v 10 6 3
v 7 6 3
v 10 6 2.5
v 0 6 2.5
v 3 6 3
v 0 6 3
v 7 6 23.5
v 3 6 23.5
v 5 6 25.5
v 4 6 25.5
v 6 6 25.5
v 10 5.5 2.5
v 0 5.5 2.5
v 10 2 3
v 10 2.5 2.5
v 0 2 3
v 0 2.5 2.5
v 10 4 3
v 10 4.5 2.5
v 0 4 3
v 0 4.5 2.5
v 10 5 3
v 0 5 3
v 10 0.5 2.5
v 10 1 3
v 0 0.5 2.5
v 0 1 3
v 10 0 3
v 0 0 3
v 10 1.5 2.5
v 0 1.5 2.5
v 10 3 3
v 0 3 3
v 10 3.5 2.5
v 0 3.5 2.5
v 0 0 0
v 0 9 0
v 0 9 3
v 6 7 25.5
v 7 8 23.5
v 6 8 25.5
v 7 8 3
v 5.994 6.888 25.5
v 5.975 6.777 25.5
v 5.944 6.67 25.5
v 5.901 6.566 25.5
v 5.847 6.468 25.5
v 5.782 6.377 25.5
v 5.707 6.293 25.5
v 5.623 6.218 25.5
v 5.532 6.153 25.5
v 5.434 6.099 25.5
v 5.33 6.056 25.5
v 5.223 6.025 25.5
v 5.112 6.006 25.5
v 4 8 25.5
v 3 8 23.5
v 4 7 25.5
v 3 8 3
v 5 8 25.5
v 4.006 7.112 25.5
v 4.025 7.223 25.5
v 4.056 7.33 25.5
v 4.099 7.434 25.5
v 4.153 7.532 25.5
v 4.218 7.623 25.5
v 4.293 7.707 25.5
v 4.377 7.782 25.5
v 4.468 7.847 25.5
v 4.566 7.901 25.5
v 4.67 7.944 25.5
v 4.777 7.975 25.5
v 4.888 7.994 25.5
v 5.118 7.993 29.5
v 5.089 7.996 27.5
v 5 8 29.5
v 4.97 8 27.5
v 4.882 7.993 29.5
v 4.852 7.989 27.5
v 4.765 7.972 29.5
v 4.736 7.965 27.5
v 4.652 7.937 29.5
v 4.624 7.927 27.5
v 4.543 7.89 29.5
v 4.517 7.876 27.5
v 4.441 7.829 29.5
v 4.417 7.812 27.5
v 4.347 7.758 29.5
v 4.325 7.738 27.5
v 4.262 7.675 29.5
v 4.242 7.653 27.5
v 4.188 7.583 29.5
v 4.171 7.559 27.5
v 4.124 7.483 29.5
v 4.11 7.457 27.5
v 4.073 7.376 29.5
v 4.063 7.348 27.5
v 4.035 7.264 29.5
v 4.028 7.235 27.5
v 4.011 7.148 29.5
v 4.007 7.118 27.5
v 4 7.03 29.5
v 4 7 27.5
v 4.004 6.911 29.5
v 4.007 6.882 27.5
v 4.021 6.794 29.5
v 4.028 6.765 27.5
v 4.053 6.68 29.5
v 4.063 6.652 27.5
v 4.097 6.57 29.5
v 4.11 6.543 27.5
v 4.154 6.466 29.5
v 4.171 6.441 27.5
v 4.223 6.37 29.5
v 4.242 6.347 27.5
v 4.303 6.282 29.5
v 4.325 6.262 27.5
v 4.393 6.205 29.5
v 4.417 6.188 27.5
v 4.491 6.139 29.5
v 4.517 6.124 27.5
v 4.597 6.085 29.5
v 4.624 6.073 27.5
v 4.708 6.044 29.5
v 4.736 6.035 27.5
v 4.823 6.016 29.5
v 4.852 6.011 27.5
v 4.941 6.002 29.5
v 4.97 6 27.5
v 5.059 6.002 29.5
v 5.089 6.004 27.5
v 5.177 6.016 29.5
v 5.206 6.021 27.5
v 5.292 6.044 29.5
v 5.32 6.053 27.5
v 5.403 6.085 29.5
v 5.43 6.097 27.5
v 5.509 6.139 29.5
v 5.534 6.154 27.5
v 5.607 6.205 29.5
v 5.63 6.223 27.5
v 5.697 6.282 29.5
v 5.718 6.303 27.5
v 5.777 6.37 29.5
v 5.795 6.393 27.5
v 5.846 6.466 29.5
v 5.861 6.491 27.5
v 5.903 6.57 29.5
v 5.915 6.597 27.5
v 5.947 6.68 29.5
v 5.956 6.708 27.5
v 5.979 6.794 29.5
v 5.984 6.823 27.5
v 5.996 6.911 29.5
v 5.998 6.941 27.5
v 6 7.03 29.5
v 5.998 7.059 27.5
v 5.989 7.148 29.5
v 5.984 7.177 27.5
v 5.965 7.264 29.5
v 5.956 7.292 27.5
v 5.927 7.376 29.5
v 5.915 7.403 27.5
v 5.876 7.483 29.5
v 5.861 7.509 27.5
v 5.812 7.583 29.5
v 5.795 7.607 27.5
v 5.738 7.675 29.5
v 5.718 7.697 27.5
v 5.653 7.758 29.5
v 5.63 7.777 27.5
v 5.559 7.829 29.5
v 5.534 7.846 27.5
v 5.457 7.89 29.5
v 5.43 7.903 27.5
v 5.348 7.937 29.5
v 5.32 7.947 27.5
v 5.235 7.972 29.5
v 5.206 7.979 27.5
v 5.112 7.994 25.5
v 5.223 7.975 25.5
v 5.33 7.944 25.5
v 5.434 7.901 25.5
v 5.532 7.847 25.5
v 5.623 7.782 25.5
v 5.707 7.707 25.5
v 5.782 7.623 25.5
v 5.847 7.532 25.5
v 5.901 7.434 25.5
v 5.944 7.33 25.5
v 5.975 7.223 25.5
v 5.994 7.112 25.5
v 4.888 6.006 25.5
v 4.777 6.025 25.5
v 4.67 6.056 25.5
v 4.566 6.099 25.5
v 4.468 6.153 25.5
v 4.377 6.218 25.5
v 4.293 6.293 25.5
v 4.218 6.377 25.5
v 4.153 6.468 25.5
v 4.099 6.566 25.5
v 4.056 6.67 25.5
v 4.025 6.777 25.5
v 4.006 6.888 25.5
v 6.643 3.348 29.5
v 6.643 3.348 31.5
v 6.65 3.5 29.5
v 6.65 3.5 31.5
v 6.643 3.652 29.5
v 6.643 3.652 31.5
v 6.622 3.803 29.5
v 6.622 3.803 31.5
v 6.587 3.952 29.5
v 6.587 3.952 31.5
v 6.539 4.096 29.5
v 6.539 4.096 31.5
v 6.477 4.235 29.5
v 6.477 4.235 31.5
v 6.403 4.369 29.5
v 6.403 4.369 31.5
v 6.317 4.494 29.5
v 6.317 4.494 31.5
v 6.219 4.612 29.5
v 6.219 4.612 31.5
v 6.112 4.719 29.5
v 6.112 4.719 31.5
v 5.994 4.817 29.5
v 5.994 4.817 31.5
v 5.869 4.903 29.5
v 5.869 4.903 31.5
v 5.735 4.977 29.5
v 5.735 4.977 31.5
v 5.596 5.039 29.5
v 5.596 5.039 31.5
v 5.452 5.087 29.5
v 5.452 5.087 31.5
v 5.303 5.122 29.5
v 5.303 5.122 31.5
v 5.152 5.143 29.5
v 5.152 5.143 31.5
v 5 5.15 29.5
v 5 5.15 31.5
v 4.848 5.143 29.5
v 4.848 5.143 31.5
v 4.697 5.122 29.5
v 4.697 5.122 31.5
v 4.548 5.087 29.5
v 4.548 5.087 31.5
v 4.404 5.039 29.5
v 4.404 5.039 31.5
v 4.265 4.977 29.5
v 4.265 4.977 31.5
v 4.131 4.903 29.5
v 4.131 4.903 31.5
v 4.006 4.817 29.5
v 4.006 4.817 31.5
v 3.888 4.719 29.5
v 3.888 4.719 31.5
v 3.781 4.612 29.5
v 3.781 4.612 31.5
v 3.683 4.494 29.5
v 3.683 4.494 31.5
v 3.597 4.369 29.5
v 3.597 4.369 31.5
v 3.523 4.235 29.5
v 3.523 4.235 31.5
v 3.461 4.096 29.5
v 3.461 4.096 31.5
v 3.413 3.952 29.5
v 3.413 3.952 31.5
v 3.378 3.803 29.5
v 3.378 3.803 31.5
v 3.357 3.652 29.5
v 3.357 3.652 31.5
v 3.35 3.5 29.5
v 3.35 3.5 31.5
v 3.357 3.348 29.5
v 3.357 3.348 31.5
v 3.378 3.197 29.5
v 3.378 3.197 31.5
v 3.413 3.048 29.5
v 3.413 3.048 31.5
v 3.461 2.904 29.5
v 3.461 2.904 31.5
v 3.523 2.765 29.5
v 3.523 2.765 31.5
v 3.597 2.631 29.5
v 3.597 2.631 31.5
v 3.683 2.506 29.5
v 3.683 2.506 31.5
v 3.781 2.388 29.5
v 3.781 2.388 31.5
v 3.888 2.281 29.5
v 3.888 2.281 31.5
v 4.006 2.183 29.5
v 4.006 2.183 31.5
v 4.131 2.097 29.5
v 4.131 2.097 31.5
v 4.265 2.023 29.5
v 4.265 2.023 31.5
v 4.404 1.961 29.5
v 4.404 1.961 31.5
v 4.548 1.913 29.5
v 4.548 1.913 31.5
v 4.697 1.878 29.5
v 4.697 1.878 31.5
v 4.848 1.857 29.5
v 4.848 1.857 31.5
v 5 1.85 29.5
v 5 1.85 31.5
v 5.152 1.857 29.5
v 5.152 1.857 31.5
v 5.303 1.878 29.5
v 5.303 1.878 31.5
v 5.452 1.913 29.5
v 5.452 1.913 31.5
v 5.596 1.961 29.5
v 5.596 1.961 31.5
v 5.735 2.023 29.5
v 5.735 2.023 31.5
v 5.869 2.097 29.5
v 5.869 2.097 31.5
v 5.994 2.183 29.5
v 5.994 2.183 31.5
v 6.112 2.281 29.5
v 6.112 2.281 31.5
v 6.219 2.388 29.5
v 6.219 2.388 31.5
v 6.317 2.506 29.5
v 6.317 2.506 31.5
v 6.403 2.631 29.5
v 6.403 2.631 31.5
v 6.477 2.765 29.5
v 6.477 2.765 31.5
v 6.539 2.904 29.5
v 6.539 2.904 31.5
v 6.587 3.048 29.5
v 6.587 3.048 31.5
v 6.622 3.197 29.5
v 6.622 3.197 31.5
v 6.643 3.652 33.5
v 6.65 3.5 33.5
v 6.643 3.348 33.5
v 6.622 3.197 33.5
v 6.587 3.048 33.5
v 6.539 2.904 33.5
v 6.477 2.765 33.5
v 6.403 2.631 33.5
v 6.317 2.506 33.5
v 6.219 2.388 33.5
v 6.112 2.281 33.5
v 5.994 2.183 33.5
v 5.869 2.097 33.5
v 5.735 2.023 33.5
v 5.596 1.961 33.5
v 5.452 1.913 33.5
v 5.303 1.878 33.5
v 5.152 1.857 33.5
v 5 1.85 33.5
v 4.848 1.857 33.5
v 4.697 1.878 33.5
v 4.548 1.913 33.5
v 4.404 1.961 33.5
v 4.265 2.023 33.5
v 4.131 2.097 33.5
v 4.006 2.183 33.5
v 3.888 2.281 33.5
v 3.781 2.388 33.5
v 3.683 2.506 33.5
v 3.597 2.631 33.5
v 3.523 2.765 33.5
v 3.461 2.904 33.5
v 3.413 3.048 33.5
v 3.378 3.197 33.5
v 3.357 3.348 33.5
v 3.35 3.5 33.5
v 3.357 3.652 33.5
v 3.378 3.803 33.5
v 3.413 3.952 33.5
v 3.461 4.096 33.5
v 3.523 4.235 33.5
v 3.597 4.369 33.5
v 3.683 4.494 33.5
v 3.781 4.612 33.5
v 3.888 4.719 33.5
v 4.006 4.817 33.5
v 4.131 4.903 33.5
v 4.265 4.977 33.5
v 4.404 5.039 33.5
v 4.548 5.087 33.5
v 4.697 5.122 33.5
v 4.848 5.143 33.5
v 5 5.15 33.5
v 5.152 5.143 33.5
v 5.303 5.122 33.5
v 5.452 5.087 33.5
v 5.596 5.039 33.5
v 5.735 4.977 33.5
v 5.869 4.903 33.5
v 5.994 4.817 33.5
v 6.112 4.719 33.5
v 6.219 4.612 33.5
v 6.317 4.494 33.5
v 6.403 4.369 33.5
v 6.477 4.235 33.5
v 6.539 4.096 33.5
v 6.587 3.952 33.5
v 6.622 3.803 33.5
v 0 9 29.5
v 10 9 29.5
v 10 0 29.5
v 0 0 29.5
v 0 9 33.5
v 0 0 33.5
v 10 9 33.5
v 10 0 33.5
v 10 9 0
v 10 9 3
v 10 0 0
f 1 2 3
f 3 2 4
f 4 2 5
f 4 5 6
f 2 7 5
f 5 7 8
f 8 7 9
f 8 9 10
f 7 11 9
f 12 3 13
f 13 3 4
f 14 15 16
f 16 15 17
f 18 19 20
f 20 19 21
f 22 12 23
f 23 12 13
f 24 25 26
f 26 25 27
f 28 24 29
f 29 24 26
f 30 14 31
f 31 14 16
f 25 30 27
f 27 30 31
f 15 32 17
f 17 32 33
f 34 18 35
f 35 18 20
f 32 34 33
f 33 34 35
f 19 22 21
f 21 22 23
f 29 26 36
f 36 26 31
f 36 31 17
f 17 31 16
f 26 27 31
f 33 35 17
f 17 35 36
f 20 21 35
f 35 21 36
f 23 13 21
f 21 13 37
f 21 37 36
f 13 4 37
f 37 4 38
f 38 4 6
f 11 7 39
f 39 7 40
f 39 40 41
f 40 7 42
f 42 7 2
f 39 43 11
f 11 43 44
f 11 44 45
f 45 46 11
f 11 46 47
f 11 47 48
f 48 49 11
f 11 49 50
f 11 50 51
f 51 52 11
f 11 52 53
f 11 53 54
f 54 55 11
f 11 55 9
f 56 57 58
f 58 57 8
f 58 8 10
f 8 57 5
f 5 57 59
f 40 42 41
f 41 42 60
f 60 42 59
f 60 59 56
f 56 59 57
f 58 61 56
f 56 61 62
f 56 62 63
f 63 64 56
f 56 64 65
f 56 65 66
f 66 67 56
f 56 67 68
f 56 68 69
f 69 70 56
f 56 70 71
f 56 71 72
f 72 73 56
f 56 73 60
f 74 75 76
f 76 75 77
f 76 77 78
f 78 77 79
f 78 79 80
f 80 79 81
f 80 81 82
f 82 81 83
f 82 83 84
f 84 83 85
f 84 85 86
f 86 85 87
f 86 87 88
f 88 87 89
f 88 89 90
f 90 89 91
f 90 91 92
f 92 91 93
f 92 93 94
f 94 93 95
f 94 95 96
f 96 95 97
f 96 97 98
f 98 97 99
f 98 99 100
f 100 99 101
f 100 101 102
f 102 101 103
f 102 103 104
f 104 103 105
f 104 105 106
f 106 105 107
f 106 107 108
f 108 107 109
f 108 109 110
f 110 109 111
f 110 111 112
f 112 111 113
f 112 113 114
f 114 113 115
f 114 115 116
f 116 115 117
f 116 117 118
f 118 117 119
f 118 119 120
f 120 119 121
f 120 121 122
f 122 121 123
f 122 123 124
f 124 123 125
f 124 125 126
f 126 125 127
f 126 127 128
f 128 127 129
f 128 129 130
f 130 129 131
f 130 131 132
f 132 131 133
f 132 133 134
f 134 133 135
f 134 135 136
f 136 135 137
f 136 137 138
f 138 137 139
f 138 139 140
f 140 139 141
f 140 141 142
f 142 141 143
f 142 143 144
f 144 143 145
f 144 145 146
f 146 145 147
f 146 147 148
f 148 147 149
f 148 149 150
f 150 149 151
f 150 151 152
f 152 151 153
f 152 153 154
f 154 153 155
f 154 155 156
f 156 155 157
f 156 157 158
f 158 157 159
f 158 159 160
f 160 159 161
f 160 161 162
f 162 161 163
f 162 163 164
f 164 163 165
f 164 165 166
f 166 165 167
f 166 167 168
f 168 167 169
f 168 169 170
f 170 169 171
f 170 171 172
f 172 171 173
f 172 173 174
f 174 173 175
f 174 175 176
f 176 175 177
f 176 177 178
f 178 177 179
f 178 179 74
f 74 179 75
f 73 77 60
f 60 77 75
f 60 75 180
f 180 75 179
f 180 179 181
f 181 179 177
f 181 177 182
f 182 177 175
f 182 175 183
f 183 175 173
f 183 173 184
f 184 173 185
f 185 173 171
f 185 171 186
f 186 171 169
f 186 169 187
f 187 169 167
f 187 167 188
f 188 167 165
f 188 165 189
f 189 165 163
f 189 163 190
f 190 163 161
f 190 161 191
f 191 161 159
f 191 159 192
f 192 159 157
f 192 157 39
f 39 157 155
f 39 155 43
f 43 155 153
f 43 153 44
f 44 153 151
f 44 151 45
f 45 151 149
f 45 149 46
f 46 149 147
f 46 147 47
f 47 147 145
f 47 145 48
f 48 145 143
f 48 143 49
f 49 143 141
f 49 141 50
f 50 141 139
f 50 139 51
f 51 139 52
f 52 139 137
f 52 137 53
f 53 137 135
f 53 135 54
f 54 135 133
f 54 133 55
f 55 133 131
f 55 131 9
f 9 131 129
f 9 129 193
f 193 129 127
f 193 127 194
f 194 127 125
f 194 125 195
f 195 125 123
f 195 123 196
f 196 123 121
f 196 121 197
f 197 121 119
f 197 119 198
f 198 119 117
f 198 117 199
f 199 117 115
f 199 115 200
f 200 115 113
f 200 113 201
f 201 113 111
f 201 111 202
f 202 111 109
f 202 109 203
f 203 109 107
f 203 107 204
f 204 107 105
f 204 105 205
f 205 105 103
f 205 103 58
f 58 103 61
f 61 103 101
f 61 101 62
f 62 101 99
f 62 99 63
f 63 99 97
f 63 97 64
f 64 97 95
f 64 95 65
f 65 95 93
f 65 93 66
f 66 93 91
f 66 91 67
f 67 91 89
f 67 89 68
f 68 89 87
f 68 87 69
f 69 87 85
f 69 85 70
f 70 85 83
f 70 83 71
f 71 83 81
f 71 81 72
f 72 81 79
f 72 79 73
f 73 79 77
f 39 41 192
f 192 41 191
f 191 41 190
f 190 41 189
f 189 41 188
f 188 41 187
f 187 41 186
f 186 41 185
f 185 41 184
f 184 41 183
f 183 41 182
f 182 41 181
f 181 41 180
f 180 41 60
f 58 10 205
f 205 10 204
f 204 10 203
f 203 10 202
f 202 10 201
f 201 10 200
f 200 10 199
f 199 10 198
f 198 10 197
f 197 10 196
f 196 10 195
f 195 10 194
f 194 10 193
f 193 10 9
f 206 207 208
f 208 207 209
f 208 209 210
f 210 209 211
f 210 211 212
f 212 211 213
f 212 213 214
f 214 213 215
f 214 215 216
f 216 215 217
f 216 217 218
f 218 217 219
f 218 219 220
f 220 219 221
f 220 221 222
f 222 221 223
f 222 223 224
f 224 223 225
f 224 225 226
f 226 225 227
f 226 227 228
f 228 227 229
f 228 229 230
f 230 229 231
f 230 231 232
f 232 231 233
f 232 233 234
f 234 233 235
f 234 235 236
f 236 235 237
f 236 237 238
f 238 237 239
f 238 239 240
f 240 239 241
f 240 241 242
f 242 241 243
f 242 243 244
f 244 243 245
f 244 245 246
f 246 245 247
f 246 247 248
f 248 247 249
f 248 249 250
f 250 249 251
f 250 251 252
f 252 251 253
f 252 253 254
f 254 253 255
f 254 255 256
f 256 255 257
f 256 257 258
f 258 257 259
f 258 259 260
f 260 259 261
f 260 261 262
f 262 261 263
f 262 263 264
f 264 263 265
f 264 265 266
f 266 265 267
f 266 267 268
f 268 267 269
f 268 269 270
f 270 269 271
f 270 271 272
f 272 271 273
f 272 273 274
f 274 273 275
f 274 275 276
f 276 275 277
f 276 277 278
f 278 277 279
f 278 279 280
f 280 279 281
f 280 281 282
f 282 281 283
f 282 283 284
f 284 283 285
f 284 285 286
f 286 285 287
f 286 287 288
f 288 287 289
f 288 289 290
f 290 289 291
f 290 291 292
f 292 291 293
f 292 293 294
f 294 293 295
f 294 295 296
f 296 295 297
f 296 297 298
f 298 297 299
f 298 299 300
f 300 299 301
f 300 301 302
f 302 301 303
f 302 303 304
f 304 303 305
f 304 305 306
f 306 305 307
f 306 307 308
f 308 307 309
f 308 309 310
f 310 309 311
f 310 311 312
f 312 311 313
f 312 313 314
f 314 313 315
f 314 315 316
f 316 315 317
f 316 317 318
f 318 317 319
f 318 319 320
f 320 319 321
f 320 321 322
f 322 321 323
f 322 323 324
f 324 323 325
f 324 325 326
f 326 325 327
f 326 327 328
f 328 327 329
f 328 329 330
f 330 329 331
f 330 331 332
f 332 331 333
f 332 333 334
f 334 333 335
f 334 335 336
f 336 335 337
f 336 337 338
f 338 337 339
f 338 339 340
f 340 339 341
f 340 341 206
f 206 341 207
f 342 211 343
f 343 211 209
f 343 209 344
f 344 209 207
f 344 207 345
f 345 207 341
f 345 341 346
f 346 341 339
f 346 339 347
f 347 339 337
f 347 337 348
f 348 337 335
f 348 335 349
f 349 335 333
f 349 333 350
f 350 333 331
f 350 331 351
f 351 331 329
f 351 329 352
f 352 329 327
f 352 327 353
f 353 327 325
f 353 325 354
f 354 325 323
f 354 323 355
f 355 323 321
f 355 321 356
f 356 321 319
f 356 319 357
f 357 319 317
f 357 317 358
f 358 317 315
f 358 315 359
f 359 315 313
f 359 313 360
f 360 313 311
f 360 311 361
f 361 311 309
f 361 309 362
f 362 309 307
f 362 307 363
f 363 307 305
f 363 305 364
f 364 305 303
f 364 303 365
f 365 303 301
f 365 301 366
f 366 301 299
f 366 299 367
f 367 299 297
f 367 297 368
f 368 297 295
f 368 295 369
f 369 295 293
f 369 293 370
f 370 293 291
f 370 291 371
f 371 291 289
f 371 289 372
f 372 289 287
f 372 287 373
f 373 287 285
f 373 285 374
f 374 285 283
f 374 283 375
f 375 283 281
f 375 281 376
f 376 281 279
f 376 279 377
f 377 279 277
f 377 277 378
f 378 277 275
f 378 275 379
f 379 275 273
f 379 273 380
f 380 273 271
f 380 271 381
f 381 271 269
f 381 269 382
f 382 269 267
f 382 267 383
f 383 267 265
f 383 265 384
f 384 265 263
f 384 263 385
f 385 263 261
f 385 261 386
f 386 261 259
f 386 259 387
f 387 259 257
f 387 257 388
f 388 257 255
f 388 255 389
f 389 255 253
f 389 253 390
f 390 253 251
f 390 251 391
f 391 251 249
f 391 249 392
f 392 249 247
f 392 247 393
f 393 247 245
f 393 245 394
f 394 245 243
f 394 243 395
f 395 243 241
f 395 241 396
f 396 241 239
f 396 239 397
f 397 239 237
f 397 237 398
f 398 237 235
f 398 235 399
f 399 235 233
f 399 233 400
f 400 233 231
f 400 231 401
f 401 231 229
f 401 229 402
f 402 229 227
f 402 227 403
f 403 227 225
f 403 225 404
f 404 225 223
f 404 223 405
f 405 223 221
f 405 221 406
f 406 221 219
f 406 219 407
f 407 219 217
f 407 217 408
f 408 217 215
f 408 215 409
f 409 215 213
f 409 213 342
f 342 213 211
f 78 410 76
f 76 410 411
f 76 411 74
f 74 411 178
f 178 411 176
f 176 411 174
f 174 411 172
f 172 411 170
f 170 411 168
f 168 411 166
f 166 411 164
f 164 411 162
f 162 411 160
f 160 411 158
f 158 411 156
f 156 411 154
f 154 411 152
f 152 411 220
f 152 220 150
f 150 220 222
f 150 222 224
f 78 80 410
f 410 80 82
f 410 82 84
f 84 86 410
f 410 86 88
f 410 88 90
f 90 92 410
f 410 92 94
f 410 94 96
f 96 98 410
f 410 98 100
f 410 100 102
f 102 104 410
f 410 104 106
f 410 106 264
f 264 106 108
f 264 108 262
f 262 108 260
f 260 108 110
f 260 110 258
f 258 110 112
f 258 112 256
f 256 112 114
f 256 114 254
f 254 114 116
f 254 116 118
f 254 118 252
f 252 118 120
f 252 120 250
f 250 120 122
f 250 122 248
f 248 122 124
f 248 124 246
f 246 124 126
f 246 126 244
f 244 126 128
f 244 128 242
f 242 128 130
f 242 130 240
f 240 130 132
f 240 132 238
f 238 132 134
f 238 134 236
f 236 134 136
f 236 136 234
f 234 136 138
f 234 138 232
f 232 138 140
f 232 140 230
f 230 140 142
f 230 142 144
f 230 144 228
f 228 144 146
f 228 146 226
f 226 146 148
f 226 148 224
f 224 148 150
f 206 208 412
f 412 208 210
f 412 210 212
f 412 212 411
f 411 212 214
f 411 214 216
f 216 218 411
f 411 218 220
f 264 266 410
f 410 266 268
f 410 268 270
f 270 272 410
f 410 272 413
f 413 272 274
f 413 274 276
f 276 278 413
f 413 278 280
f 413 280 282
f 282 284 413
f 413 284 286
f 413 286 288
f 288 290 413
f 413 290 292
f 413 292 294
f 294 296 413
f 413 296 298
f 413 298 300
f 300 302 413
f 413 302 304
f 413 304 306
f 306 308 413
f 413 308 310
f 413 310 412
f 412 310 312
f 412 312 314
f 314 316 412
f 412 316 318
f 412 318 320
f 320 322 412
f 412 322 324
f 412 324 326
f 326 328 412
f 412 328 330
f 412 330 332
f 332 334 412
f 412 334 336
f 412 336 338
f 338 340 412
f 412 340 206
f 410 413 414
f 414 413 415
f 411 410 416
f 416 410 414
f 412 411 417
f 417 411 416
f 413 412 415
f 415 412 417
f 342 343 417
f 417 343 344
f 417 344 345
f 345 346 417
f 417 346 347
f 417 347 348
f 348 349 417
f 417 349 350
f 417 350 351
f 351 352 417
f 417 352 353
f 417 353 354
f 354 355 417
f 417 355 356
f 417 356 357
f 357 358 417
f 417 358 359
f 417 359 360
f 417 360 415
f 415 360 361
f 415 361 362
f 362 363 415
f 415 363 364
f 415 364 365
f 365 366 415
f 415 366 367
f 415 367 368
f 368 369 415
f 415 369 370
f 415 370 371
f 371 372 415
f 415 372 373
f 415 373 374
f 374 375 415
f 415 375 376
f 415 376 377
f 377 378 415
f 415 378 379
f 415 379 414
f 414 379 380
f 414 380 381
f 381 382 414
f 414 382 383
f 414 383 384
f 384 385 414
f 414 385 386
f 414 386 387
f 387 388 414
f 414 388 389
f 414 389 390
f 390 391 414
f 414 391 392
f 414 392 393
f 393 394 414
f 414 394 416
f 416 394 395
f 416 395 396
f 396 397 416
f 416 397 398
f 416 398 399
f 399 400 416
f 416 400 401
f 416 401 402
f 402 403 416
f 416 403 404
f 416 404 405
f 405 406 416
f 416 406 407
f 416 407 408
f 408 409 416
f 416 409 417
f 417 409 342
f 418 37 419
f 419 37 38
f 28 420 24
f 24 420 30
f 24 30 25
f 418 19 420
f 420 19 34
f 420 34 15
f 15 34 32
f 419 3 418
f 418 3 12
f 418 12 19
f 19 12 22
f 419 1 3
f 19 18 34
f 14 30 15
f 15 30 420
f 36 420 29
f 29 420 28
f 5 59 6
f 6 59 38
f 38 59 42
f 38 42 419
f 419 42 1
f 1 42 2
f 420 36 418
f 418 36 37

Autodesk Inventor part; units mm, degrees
ref_plane "YZ Plane" through (0, 0, 0) normal (1, 0, 0) x (0, 1, 0)
ref_plane "XZ Plane" through (0, 0, 0) normal (0, 1, 0) x (-1, 0, 0)
ref_plane "XY Plane" through (0, 0, 0) normal (0, 0, 1) x (1, 0, 0)
sketch "Sketch1" plane through (0, 0, 0) normal (0, 0, 1) x (1, 0, 0)
  line L0 (0, 0) -> (10, 0)
  line L1 (10, 0) -> (10, 9)
  line L2 (10, 9) -> (0, 9)
  line L3 (0, 9) -> (0, 0)
  point P0 (5, 9)
  dimension "d0" = 10
  dimension "d1" = 9
extrude "Extrusion1" add sketch "Sketch1" along normal blind 3
sketch "Sketch2" plane through (0, 0, 3) normal (0, 0, 1) x (1, 0, 0)
  line L0 (10, 9) -> (0, 9) projected
  circle A0 centre (5, 7) radius 1
  line L1 (0, 9) -> (0, 0) projected
  point P0 (5, 9)
  dimension "d4" = 2
  dimension "d5" = 2
  dimension "d67" = 5
extrude "Extrusion2" add sketch "Sketch2" along normal blind 1.5
sketch "Sketch6" plane through (5, 7, 4.5) normal (0, 0, 1) x (1, 0, 0)
  circle A0 centre (0, 0) radius 1 projected
  line L0 (2, -1) -> (-2, -1)
  line L1 (-2, -1) -> (-2, 1)
  line L2 (-2, 1) -> (2, 1)
  line L3 (2, 1) -> (2, -1)
  line L4 (2, -1) -> (-2, 1) construction
  line L5 (-2, -1) -> (2, 1) construction
  point P0 (-5, -7)
  dimension "d13" = 4
extrude "Extrusion5" add sketch "Sketch6" along normal blind 25
sketch "Sketch7" plane through (5, 7, 29.5) normal (0, 0, 1) x (1, 0, 0)
  circle A0 centre (0, 0) radius 1 projected
  line L0 (-5, -7) -> (5, -7) projected
  line L1 (5, -7) -> (5, 2) projected
  line L2 (5, 2) -> (-5, 2) projected
  line L3 (-5, 2) -> (-5, -7) projected
  arc A1 (0, -1) -> (0, 1) centre (0, 0) ccw projected
  arc A2 (0, 1) -> (0, -1) centre (0, 0) ccw projected
extrude "Extrusion6" add sketch "Sketch7" along normal blind 4 contours A0 | L3 L2 L1 L0
sketch "Sketch8" plane through (5, 7, 33.5) normal (0, 0, 1) x (1, 0, 0)
  line L0 (-5, -7) -> (5, -7) projected
  line L1 (5, -7) -> (5, 2) projected
  line L2 (5, 2) -> (-5, 2) projected
  line L3 (-5, 2) -> (-5, -7) projected
  circle A0 centre (0, -3.5) radius 1.65
  dimension "d18" = 3.3
  dimension "d66" = 5.5
extrude "Extrusion7" cut sketch "Sketch8" against normal blind 4 contours A0
sketch "Sketch10" plane through (0, 0, 0) normal (-1, 0, 0) x (0, 0, 1)
  line L0 (0, 0) -> (3, 0) projected
  line L1 (3, 0) -> (2.5, 0)
  line L2 (2.5, 0) -> (2.5, 0.5)
  line L3 (2.5, 6) -> (3, 6)
  line L4 (3, 6) -> (3, 5)
  line L5 (3, 0) -> (2.5, 0.5)
  line L6 (3, 0) -> (3.7071, 0) construction
  line L7 (2.5, 0.5) -> (3, 1)
  line L8 (3, 1) -> (2.5, 1.5)
  line L9 (2.5, 1.5) -> (3, 2)
  line L10 (3, 2) -> (2.5, 2.5)
  line L11 (2.5, 2.5) -> (3, 3)
  line L12 (3, 3) -> (2.5, 3.5)
  line L13 (2.5, 3.5) -> (3, 4)
  line L14 (3, 4) -> (2.5, 4.5)
  line L15 (2.5, 4.5) -> (3, 5)
  line L16 (3, 5) -> (2.5, 5.5)
  line L17 (2.5, 5.5) -> (3, 6)
  line L18 (2.5, 5.5) -> (2.5, 6)
  line L19 (2.5, 4.5) -> (2.5, 5.5)
  line L20 (2.5, 3.5) -> (2.5, 4.5)
  line L21 (2.5, 2.5) -> (2.5, 3.5)
  line L22 (2.5, 1.5) -> (2.5, 2.5)
  line L23 (2.5, 0.5) -> (2.5, 1.5)
  line L24 (3, 1) -> (3, 0)
  line L25 (3, 2) -> (3, 1)
  line L26 (3, 3) -> (3, 2)
  line L27 (3, 5) -> (3, 4)
  line L28 (3, 4) -> (3, 3)
  point P0 (2.5, 3)
  point P1 (3, 4.4114)
  point P2 (2.5, 4.5886)
  dimension "d23" = 0.5
  dimension "d24" = 6
  dimension "d25" = 135
extrude "Extrusion10" add sketch "Sketch6" against normal up to surface (1.5 mm away) contours A0 L2 L3 L0 | A0 L0 L1 L2
sketch "Sketch12" plane through (5, 7, 29.5) normal (0, 0, -1) x (-1, 0, 0)
  circle A0 centre (0, 0) radius 1 projected
  line L0 (-2, 1) -> (-2, -1) projected
  line L1 (-2, -1) -> (2, -1) projected
  line L2 (2, 1) -> (-2, 1) projected
  line L3 (2, -1) -> (2, 1) projected
  point P0 (5, -7)
extrude "Extrusion11" cut sketch "Sketch12" along normal blind 4 contours A0 L2 L3 L1 | A0 L1 L0 L2
chamfer "Chamfer3" distance 2 distance2 1 1 edges at (3, 7, 25.5) measured on face at (3, 6.6667, 10.5)
chamfer "Chamfer4" distance 2 distance2 1 1 edges at (7, 7, 25.5) measured on face at (7, 7.3333, 10.5)
extrude "Extrusion12" cut sketch "Sketch10" against normal up to next contours L5 L7 L24 | L8 L9 L25 | L10 L11 L26 | L12 L13 L28 | L14 L15 L27 | L16 L17 L4 | L18 L3 L17
properties part number "gravity-clamp-base5x5mm-part1-narrowTOP"
